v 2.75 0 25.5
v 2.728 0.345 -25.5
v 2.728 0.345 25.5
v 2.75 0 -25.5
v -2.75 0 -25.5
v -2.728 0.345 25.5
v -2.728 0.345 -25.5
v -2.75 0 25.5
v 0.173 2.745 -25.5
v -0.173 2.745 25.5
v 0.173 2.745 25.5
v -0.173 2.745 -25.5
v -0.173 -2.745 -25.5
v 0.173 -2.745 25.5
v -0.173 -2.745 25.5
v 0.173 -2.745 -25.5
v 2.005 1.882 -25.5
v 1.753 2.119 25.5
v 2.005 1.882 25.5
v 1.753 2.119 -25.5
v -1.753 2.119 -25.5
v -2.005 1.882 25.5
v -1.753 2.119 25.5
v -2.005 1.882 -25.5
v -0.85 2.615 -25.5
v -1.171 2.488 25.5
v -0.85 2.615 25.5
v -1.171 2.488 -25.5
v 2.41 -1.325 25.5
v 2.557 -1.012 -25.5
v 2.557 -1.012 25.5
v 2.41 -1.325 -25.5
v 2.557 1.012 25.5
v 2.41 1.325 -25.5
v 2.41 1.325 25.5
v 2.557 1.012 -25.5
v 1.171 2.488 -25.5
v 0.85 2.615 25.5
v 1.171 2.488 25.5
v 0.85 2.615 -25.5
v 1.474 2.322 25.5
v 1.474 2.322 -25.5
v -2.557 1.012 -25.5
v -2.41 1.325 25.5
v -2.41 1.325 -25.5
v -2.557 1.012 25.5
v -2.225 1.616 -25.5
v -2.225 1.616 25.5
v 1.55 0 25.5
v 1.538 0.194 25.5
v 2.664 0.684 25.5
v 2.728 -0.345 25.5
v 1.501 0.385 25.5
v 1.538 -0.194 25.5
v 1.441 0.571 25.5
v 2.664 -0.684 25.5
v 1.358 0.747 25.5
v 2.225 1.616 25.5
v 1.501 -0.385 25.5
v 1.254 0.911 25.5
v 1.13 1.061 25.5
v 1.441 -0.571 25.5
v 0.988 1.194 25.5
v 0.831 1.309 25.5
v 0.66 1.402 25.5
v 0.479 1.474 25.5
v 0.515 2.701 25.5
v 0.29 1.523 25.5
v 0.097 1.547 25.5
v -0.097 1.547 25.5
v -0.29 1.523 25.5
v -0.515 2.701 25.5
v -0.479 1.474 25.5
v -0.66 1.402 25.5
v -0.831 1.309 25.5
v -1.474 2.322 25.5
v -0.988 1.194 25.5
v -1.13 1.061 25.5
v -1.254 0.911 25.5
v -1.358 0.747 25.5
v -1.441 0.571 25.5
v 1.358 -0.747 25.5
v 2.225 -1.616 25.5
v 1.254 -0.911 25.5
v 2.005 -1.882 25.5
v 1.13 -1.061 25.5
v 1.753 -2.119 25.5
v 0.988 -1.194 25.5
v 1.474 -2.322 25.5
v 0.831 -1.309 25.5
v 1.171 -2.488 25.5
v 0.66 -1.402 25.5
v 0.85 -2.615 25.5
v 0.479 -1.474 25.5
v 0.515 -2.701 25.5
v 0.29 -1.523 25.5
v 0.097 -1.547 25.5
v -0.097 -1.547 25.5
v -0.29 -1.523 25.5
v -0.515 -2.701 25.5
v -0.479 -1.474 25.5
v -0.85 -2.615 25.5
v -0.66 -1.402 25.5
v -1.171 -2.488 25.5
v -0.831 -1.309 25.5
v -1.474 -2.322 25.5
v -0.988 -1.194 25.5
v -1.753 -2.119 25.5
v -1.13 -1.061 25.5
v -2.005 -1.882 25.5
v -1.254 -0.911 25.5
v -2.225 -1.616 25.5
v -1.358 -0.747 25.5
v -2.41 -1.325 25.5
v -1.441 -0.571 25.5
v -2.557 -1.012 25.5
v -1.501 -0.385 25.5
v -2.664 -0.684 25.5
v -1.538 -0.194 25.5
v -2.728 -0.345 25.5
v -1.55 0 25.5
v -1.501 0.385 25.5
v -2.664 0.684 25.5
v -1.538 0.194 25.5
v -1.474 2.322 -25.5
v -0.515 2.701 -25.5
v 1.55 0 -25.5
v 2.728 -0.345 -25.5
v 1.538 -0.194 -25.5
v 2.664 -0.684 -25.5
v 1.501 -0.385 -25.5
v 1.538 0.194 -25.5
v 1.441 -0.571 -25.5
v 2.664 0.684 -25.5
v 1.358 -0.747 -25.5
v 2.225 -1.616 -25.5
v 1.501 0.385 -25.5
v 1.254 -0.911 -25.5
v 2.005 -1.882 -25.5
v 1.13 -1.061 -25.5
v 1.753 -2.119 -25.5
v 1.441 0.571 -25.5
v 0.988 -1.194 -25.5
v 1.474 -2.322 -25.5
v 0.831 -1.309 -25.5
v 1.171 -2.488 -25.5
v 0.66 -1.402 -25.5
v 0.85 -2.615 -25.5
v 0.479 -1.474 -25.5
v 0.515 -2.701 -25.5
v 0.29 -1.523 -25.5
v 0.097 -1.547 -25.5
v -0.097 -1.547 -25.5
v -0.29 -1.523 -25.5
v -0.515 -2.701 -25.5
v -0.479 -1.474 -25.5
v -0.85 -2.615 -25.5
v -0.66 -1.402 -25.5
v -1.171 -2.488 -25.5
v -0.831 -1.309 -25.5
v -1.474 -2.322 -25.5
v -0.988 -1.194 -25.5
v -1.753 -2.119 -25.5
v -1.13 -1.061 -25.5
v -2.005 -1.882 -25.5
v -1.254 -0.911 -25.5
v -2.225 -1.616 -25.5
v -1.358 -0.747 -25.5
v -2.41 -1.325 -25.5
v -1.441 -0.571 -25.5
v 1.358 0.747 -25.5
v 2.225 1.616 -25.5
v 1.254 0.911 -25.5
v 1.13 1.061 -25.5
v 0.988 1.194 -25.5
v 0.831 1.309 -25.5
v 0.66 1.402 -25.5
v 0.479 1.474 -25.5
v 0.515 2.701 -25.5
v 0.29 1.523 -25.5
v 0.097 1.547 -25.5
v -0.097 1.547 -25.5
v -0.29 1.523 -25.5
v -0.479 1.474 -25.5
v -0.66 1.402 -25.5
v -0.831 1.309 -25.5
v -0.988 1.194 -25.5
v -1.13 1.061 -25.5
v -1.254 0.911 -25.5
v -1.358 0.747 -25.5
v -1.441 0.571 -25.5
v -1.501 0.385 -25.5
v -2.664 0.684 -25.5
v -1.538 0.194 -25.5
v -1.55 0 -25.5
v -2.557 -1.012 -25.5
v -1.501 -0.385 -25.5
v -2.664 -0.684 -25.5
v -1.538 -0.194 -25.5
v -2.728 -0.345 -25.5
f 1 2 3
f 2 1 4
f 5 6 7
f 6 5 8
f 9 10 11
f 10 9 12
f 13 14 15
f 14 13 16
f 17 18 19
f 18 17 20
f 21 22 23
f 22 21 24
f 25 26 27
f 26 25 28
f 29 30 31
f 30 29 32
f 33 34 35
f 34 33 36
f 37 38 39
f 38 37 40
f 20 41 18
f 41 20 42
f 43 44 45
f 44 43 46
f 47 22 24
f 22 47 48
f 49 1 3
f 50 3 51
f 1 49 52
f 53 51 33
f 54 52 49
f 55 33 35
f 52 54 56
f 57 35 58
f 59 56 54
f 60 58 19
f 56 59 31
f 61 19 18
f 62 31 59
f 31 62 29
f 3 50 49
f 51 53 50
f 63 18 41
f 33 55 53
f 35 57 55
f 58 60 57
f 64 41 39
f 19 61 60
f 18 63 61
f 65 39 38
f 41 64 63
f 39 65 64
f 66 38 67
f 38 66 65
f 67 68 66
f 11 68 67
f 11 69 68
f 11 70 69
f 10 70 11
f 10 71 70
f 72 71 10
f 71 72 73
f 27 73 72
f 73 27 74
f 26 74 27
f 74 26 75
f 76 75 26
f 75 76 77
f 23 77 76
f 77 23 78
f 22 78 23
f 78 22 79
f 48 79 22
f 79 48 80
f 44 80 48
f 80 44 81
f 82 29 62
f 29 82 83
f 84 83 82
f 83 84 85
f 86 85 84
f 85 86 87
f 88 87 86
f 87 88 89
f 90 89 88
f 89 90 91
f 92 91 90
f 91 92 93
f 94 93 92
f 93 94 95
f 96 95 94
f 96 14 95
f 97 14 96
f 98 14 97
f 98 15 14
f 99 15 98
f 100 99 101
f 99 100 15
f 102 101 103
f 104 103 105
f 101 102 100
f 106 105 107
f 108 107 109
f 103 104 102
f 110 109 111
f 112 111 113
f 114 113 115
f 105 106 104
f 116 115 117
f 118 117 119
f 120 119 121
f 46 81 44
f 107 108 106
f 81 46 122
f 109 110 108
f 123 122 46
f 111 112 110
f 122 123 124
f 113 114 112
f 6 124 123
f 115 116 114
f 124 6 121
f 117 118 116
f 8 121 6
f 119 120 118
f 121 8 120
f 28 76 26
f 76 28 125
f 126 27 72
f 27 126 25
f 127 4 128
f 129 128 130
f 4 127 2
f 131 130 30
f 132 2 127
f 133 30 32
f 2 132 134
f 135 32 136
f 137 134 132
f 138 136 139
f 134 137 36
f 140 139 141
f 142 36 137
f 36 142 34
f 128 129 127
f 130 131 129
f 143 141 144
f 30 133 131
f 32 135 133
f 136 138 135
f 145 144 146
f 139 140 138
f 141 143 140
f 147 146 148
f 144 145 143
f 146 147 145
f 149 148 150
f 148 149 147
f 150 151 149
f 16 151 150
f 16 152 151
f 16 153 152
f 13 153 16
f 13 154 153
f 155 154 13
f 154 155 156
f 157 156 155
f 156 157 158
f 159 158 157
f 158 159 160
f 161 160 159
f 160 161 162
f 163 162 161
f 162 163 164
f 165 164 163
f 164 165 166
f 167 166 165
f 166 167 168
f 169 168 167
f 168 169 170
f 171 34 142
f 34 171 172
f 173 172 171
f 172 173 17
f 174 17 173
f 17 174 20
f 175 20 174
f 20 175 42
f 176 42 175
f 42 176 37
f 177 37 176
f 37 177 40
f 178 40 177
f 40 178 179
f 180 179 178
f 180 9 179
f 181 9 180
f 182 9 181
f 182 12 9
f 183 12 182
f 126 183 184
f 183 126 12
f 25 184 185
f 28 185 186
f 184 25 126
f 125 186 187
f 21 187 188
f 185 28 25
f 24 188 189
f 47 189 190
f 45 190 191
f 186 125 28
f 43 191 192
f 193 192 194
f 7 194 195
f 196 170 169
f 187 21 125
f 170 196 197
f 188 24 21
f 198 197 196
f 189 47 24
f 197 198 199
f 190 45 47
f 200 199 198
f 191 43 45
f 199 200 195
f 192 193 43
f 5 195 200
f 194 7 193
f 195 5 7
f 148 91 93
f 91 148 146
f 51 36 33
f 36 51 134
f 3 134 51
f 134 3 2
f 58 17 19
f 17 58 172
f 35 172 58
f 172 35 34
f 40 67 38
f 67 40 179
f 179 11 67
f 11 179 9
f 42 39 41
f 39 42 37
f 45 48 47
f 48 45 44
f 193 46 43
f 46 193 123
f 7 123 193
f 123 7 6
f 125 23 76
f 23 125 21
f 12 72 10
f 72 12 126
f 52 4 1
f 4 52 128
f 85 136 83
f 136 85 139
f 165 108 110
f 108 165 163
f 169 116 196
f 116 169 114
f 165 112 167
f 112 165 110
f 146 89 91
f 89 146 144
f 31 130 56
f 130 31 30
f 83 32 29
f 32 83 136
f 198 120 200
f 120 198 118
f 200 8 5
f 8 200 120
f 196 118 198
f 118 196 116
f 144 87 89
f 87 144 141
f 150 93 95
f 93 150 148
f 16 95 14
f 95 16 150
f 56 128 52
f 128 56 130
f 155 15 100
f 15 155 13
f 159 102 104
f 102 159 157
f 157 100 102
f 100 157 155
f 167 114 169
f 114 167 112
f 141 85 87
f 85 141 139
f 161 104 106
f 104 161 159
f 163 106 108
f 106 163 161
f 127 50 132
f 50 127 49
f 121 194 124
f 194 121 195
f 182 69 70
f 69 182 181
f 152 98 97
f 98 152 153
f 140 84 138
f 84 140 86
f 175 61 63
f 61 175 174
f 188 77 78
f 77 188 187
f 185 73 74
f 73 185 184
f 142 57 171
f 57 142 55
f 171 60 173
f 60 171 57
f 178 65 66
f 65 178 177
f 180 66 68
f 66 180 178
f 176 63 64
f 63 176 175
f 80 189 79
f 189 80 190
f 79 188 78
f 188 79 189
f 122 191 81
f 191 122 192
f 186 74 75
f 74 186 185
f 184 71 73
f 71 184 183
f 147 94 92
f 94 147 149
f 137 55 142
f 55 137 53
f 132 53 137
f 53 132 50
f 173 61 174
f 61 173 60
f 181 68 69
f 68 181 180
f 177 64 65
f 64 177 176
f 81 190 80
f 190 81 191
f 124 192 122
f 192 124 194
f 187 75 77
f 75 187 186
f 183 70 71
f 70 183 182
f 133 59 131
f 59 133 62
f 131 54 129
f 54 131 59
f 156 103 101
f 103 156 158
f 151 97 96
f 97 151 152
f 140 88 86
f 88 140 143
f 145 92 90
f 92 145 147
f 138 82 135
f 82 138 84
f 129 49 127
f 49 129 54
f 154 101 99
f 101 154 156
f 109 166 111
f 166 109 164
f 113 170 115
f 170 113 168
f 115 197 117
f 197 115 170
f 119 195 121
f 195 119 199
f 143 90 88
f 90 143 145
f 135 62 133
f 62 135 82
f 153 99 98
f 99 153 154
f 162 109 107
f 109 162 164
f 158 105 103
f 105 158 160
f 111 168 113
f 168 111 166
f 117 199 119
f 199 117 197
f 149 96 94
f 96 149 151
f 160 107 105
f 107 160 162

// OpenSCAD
$fn = 50;


difference() {
	union() {
		translate(v = [0, 0, -25.5000000000]) {
			cylinder(h = 51, r = 2.7500000000);
		}
	}
	union() {
		translate(v = [0, 0, -100.0000000000]) {
			cylinder(h = 200, r = 1.5500000000);
		}
	}
}
